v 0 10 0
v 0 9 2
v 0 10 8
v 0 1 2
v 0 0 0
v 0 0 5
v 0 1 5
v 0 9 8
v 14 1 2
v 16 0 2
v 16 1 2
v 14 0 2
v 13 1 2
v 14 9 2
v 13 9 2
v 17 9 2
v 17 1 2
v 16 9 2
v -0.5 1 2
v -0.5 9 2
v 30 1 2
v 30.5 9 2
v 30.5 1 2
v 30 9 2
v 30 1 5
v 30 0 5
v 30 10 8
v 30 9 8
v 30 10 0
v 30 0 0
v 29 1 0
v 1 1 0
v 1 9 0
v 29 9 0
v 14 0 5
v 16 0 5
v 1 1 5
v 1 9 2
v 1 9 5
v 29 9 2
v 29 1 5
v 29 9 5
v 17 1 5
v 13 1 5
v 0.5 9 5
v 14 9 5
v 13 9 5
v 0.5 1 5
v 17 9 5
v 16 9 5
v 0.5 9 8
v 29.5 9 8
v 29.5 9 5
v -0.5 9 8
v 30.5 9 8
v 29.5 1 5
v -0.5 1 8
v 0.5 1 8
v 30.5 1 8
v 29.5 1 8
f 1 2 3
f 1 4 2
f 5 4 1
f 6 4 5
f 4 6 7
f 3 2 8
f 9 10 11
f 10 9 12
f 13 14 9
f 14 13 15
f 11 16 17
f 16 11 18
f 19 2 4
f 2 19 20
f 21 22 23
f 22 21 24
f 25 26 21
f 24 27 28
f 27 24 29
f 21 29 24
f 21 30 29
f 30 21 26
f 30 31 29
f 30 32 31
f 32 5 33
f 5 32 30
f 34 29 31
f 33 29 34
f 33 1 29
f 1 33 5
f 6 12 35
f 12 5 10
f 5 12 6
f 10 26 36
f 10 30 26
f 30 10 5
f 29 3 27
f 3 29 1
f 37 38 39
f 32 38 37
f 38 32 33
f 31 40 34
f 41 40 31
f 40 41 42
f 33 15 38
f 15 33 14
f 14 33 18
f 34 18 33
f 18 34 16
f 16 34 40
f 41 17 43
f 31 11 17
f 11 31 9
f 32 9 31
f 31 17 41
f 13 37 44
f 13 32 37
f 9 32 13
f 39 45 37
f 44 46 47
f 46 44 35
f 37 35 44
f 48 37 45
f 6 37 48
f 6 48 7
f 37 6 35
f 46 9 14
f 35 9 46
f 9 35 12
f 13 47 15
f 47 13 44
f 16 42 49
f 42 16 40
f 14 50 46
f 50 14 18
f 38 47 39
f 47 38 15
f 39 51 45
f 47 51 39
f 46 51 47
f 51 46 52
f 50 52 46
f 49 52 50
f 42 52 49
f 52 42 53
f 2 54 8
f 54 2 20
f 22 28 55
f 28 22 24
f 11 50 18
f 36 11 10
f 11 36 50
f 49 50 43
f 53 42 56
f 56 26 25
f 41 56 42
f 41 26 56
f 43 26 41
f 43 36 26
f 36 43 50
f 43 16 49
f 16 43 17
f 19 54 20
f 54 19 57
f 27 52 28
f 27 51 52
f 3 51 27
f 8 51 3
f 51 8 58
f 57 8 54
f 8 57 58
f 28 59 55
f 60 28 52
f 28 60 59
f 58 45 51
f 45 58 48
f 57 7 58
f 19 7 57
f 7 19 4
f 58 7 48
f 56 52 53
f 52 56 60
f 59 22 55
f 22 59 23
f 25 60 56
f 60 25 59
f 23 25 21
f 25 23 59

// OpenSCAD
// Couch Base
difference() {
    cube([30, 10, 2]);
    translate([1, 1, 0]) cube([28, 8, 2]);
}

// Couch Cushions
translate([0, 0, 2]) {
    difference() {
        cube([14, 10, 3]);
        translate([1, 1, 0]) cube([12, 8, 3]);
    }
    translate([16, 0, 0]) {
        difference() {
            cube([14, 10, 3]);
            translate([1, 1, 0]) cube([12, 8, 3]);
        }
    }
}

// Couch Arms
translate([-0.5, 1, 2]) cube([1, 8, 6]);
translate([29.5, 1, 2]) cube([1, 8, 6]);

// Couch Back
translate([0, 9, 2]) cube([30, 1, 6]);
